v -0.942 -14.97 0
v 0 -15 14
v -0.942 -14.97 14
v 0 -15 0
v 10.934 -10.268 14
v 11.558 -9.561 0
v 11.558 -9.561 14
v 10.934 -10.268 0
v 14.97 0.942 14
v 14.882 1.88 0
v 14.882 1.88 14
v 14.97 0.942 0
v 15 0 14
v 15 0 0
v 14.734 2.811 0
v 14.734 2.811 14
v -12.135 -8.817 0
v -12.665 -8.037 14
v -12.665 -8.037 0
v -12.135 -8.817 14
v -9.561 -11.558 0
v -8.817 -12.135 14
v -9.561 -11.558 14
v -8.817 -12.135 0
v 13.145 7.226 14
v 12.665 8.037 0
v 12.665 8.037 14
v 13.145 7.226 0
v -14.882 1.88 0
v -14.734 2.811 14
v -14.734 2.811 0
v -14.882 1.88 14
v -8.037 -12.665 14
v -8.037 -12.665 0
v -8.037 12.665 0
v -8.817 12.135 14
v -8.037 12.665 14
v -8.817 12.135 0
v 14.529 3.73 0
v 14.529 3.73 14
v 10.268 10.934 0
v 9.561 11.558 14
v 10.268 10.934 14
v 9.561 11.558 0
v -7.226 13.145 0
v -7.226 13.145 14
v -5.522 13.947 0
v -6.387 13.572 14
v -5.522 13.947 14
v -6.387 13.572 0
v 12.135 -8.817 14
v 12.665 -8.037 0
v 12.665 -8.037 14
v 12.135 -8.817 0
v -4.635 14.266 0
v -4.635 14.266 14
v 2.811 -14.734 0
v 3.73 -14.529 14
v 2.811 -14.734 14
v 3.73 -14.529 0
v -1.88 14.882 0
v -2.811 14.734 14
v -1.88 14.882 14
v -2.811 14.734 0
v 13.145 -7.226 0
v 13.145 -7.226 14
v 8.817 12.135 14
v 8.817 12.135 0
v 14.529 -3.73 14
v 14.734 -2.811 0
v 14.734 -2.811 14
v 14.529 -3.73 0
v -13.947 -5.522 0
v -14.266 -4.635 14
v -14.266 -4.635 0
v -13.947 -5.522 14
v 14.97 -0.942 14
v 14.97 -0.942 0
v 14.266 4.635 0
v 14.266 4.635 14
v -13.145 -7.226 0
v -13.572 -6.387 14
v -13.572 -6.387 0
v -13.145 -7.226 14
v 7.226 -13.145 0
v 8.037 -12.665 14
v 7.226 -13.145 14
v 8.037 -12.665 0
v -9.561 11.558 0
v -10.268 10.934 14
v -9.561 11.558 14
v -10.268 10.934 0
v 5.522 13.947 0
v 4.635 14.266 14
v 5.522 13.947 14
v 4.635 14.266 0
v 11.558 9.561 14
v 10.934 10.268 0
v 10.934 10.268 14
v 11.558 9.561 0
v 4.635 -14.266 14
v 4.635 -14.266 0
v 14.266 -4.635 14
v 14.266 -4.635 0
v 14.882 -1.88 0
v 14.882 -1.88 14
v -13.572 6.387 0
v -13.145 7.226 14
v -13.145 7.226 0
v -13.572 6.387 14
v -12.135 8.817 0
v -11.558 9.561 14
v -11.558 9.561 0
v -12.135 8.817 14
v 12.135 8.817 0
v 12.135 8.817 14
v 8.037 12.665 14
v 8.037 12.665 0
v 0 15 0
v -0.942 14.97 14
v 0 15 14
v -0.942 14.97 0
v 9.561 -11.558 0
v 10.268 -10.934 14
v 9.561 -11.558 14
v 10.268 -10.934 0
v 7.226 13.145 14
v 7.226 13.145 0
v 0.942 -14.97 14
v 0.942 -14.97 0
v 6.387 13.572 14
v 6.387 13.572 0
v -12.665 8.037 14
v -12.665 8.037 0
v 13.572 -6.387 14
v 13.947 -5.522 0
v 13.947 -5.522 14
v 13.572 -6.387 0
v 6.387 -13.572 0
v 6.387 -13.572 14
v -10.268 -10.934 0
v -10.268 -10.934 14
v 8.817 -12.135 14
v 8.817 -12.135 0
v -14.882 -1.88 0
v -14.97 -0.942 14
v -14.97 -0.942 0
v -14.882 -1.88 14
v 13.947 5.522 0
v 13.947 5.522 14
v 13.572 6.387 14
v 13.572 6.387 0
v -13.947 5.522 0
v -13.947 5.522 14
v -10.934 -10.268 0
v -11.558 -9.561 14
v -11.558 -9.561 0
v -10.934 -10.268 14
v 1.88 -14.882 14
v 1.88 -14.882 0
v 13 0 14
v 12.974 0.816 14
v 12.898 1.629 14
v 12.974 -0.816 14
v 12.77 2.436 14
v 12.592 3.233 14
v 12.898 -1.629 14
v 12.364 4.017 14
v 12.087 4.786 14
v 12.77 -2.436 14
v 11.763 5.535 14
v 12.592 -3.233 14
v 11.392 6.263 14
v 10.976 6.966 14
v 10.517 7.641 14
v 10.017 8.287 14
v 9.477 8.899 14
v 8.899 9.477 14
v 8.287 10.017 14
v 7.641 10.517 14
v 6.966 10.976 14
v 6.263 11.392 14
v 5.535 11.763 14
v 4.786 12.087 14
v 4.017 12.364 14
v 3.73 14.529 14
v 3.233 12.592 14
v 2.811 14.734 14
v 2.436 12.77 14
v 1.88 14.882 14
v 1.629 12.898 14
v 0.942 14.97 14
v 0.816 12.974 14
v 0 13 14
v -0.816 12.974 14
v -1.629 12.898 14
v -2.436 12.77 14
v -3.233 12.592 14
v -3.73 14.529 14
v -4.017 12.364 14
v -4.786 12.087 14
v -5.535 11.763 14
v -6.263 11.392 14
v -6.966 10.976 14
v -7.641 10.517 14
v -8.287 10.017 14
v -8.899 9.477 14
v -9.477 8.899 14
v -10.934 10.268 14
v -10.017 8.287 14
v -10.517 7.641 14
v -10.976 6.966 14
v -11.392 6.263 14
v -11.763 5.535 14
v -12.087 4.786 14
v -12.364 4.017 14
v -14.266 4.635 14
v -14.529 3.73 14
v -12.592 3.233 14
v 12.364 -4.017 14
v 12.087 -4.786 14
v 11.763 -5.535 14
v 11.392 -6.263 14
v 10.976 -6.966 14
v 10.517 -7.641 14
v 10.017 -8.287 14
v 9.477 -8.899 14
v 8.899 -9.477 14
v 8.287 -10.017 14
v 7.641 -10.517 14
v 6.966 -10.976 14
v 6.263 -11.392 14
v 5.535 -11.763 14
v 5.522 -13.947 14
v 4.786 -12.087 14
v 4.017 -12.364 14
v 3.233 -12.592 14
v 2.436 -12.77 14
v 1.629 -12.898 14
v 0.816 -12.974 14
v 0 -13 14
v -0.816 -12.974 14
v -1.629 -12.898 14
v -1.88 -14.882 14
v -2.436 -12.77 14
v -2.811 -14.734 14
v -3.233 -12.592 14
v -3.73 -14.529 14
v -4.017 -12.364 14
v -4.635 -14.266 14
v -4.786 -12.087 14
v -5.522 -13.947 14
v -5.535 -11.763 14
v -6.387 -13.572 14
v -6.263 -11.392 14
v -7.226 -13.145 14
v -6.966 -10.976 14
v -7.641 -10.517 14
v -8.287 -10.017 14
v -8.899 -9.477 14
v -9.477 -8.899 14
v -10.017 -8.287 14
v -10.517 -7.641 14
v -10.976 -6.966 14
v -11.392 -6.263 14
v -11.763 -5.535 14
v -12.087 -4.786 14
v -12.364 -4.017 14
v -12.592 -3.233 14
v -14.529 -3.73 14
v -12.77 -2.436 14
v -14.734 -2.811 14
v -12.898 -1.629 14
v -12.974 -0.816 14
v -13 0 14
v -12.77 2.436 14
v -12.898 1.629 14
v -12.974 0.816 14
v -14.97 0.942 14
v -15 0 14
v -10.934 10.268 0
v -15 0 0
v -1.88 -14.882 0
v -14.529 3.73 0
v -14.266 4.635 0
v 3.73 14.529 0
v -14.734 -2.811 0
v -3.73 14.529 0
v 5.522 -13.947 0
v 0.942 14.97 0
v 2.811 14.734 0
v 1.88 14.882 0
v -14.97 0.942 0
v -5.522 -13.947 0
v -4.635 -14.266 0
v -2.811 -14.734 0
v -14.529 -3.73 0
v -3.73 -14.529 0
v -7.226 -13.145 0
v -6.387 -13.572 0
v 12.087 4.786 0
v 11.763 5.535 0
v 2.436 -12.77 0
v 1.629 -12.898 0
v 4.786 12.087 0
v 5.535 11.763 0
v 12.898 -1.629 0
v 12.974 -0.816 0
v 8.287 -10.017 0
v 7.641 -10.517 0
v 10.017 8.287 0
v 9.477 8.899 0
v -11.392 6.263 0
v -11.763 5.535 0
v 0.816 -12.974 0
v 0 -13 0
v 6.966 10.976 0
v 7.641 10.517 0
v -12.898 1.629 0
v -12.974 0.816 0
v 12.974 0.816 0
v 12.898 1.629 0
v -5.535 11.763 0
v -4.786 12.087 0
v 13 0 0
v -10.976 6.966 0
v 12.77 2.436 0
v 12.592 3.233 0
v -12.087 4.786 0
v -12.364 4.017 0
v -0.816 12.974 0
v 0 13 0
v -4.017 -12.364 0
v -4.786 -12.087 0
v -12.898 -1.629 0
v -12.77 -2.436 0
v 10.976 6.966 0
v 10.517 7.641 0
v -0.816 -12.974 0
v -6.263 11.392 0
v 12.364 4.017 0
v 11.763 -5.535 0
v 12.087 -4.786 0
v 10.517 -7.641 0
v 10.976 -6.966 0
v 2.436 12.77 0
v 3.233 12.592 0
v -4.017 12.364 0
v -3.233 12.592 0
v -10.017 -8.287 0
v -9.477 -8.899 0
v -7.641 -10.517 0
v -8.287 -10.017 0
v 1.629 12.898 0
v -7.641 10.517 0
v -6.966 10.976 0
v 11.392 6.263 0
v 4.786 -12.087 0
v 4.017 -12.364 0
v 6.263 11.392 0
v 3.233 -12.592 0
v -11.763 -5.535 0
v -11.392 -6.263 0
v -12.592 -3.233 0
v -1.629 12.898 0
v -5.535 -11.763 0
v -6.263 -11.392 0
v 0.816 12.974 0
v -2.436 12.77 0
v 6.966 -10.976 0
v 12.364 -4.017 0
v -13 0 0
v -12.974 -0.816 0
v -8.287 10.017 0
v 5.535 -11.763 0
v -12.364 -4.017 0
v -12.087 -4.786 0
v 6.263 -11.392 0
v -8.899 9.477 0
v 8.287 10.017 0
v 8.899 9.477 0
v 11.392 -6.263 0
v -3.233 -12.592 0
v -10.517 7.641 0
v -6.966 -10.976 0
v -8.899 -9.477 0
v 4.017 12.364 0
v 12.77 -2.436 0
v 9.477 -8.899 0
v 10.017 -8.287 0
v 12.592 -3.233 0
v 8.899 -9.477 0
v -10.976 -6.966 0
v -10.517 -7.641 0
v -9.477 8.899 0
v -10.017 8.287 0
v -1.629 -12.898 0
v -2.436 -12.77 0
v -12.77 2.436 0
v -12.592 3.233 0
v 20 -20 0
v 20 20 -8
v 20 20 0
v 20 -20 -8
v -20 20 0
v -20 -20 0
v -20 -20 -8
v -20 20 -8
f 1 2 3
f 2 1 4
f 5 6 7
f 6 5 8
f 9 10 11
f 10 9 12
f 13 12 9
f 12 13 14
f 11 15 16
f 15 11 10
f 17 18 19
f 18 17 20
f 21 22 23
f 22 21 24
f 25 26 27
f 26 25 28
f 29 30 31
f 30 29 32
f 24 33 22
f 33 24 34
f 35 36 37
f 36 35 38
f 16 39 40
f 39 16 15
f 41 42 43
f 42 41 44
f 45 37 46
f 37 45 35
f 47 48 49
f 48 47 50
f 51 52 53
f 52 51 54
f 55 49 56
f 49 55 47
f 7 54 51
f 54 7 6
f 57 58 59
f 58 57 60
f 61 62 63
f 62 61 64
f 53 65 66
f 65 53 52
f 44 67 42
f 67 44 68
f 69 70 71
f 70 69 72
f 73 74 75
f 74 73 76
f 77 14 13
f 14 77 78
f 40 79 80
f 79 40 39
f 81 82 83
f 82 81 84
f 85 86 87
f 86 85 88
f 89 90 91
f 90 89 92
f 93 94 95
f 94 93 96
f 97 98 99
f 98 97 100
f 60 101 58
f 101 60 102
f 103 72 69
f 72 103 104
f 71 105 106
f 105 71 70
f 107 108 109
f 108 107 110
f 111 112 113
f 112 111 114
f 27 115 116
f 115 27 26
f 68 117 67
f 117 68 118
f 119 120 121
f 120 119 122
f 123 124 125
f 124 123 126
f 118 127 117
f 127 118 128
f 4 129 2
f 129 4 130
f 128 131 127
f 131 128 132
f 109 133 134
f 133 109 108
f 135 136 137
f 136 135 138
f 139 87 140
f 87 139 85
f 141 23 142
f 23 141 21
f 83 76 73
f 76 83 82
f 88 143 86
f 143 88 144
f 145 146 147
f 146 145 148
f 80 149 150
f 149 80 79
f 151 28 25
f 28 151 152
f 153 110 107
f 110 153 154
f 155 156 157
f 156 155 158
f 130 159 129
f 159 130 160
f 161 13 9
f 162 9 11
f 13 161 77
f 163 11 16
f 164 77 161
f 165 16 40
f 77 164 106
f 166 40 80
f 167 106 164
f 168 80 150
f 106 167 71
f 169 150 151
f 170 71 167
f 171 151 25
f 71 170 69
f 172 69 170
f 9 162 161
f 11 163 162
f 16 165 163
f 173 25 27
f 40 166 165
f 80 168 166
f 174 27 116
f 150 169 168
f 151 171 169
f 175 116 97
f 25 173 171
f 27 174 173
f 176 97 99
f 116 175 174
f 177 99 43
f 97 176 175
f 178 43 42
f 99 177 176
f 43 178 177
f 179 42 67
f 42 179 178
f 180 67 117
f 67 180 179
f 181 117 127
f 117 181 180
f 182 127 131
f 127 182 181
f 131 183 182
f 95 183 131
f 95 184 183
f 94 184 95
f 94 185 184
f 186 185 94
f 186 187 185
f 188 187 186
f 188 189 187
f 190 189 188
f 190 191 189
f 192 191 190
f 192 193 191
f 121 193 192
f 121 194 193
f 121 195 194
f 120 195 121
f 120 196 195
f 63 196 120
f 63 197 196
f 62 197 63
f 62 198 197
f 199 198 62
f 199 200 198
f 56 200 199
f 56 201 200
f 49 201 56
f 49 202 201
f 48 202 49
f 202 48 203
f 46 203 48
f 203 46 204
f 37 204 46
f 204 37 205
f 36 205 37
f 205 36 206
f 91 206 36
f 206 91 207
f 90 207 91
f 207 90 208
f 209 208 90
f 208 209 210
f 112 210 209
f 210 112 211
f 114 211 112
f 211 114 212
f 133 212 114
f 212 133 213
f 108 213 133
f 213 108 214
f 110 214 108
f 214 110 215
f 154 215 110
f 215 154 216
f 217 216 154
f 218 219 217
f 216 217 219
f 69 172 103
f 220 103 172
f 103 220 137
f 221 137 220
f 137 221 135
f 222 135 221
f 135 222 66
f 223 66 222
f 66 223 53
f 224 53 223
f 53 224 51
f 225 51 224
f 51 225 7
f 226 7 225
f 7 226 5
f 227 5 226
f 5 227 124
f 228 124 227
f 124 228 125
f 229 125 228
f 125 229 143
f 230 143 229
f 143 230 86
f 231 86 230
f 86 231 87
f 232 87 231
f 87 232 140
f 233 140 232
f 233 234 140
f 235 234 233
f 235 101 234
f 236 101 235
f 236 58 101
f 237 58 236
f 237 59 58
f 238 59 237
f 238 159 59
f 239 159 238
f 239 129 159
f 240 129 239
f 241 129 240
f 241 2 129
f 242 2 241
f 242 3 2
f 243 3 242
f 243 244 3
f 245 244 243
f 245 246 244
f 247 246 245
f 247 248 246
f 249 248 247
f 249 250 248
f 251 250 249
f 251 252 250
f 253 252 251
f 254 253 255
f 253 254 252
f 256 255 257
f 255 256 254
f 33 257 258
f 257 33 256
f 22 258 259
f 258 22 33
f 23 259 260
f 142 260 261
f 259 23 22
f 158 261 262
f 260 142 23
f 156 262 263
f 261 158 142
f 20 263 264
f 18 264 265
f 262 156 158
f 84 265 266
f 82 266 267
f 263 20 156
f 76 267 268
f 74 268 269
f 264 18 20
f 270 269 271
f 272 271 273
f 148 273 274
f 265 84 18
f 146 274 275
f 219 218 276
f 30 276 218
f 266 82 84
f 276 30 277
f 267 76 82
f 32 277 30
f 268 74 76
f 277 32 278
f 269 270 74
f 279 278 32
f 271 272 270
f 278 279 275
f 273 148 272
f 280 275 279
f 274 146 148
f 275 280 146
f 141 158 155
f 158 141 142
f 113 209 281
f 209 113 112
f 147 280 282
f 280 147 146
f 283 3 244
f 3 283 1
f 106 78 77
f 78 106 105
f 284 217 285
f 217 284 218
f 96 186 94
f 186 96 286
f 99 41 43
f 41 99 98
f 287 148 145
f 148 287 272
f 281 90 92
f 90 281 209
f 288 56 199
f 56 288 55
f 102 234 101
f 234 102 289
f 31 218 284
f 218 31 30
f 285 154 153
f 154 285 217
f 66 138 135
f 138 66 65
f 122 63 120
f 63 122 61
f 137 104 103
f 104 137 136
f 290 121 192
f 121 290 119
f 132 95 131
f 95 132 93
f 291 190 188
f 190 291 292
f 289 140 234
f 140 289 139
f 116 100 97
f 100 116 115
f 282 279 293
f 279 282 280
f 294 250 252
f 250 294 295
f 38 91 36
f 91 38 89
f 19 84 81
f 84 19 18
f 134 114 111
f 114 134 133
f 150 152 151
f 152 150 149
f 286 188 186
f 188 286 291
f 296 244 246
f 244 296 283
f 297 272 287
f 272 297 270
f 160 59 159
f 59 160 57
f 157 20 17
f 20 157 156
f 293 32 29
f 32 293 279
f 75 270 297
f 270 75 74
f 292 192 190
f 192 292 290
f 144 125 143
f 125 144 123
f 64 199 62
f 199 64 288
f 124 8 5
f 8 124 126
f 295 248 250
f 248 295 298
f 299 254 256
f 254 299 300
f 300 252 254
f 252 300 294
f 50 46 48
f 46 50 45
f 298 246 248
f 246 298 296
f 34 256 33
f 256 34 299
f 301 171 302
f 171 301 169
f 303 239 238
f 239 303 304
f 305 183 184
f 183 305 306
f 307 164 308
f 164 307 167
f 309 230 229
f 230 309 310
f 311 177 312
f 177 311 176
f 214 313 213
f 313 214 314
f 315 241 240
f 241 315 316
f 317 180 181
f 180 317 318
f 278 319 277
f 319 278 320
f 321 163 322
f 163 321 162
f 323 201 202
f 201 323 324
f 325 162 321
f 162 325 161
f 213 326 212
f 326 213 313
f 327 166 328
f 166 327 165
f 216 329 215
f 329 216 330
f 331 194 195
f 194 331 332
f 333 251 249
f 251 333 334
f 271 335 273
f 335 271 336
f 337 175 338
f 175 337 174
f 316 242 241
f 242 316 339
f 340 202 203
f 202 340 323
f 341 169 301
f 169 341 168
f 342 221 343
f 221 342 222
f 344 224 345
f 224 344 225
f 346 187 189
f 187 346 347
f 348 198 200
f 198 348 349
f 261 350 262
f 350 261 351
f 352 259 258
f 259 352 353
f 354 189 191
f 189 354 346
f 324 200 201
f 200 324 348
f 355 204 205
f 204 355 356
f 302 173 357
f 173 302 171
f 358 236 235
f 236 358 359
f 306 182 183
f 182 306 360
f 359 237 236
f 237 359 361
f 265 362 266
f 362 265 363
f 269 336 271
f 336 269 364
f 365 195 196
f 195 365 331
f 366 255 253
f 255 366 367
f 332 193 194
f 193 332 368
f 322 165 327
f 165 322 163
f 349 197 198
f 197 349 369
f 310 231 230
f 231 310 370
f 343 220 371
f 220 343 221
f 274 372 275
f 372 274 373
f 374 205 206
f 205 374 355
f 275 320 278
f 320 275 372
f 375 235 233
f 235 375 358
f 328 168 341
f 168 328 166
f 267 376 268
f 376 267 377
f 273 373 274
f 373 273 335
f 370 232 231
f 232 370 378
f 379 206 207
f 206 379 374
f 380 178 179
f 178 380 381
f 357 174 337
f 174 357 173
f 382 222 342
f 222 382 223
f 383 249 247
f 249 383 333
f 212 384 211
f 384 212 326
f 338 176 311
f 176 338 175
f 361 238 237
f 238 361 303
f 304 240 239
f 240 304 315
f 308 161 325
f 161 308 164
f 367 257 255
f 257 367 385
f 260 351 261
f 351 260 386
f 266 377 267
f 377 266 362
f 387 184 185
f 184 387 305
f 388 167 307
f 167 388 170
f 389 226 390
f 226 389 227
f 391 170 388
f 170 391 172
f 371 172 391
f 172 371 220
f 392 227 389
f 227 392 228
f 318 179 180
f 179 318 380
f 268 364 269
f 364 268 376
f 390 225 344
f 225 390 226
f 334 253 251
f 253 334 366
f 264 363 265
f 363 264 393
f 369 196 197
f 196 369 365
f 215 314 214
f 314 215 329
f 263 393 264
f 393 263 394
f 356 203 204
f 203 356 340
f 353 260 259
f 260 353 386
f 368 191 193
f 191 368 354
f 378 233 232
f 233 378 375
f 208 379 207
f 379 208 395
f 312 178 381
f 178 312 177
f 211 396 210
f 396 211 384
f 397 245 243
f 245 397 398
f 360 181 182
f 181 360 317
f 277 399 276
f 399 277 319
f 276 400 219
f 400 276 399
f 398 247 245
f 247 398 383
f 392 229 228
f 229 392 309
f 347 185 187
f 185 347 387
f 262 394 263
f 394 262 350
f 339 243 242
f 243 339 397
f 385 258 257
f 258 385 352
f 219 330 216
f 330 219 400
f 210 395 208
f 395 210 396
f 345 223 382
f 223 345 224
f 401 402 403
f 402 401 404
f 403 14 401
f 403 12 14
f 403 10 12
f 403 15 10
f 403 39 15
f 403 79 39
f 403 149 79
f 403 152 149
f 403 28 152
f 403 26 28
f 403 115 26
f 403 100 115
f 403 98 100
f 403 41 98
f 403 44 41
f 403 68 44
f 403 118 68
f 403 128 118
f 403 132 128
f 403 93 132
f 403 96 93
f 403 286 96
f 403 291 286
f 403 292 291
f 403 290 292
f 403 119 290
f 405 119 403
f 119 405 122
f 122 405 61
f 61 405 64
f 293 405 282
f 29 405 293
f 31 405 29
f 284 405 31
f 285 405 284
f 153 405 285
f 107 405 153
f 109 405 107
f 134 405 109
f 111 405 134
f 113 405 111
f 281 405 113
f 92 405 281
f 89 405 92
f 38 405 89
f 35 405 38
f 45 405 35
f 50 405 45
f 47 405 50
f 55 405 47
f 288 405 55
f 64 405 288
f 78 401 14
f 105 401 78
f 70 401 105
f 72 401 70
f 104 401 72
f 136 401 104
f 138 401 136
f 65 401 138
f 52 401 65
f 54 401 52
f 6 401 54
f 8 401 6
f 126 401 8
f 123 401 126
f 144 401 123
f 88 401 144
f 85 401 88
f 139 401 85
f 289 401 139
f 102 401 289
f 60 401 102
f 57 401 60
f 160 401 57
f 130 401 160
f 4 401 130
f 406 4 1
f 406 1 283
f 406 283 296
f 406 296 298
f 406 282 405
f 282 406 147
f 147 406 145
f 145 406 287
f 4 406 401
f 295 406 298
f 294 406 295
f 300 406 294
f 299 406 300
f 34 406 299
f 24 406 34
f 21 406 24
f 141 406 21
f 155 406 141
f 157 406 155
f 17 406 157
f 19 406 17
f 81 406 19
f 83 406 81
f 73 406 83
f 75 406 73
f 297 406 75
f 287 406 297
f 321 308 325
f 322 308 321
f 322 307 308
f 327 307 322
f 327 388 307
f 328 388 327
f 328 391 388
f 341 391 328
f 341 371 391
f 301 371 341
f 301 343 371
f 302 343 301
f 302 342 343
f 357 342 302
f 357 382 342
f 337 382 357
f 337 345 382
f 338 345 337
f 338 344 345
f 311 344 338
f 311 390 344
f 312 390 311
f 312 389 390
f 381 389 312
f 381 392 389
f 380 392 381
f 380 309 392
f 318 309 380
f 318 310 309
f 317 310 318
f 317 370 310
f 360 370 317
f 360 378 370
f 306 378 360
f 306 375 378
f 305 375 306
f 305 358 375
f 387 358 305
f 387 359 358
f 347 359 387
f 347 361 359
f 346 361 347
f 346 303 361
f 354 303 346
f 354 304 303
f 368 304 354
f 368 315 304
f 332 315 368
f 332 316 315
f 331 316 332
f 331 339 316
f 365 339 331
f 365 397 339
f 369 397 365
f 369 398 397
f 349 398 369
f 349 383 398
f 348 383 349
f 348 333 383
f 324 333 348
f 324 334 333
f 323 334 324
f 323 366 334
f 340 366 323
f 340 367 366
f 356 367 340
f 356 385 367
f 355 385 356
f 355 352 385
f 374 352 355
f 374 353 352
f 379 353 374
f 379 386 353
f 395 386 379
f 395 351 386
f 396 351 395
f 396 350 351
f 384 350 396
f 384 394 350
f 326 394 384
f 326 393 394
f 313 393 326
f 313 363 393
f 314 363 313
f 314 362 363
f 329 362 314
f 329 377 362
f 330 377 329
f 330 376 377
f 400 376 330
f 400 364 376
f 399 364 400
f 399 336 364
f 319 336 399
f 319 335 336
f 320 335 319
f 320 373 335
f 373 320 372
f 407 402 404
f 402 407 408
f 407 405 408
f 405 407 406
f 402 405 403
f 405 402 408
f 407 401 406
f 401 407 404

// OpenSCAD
// Parameters for the base block
base_length = 40;  // Length of the rectangular base
base_width = 40;   // Width of the rectangular base
base_height = 8;   // Reduced height of the rectangular base to match the original model

// Parameters for the cylindrical extension
cylinder_diameter = 30;  // Diameter of the cylinder
cylinder_height = 20;    // Height of the cylinder
cylinder_wall_thickness = 2;  // Thickness of the cylinder wall

// Base block
module base_block() {
    cube([base_length, base_width, base_height], center = true);
}

// Cylindrical extension
module cylindrical_extension() {
    difference() {
        // Outer cylinder with smooth surface
        cylinder(h = cylinder_height, d = cylinder_diameter, center = true, $fn = 100); // Increased $fn for smoothness
        // Inner hollow cylinder
        cylinder(h = cylinder_height, d = cylinder_diameter - 2 * cylinder_wall_thickness, center = true, $fn = 100);
    }
}

// Full model
module flexible_coupling() {
    // Base block
    translate([0, 0, -base_height / 2])
        base_block();
    // Cylindrical extension
    translate([0, 0, base_height / 2])
        cylindrical_extension();
}

// Render the model
flexible_coupling();
